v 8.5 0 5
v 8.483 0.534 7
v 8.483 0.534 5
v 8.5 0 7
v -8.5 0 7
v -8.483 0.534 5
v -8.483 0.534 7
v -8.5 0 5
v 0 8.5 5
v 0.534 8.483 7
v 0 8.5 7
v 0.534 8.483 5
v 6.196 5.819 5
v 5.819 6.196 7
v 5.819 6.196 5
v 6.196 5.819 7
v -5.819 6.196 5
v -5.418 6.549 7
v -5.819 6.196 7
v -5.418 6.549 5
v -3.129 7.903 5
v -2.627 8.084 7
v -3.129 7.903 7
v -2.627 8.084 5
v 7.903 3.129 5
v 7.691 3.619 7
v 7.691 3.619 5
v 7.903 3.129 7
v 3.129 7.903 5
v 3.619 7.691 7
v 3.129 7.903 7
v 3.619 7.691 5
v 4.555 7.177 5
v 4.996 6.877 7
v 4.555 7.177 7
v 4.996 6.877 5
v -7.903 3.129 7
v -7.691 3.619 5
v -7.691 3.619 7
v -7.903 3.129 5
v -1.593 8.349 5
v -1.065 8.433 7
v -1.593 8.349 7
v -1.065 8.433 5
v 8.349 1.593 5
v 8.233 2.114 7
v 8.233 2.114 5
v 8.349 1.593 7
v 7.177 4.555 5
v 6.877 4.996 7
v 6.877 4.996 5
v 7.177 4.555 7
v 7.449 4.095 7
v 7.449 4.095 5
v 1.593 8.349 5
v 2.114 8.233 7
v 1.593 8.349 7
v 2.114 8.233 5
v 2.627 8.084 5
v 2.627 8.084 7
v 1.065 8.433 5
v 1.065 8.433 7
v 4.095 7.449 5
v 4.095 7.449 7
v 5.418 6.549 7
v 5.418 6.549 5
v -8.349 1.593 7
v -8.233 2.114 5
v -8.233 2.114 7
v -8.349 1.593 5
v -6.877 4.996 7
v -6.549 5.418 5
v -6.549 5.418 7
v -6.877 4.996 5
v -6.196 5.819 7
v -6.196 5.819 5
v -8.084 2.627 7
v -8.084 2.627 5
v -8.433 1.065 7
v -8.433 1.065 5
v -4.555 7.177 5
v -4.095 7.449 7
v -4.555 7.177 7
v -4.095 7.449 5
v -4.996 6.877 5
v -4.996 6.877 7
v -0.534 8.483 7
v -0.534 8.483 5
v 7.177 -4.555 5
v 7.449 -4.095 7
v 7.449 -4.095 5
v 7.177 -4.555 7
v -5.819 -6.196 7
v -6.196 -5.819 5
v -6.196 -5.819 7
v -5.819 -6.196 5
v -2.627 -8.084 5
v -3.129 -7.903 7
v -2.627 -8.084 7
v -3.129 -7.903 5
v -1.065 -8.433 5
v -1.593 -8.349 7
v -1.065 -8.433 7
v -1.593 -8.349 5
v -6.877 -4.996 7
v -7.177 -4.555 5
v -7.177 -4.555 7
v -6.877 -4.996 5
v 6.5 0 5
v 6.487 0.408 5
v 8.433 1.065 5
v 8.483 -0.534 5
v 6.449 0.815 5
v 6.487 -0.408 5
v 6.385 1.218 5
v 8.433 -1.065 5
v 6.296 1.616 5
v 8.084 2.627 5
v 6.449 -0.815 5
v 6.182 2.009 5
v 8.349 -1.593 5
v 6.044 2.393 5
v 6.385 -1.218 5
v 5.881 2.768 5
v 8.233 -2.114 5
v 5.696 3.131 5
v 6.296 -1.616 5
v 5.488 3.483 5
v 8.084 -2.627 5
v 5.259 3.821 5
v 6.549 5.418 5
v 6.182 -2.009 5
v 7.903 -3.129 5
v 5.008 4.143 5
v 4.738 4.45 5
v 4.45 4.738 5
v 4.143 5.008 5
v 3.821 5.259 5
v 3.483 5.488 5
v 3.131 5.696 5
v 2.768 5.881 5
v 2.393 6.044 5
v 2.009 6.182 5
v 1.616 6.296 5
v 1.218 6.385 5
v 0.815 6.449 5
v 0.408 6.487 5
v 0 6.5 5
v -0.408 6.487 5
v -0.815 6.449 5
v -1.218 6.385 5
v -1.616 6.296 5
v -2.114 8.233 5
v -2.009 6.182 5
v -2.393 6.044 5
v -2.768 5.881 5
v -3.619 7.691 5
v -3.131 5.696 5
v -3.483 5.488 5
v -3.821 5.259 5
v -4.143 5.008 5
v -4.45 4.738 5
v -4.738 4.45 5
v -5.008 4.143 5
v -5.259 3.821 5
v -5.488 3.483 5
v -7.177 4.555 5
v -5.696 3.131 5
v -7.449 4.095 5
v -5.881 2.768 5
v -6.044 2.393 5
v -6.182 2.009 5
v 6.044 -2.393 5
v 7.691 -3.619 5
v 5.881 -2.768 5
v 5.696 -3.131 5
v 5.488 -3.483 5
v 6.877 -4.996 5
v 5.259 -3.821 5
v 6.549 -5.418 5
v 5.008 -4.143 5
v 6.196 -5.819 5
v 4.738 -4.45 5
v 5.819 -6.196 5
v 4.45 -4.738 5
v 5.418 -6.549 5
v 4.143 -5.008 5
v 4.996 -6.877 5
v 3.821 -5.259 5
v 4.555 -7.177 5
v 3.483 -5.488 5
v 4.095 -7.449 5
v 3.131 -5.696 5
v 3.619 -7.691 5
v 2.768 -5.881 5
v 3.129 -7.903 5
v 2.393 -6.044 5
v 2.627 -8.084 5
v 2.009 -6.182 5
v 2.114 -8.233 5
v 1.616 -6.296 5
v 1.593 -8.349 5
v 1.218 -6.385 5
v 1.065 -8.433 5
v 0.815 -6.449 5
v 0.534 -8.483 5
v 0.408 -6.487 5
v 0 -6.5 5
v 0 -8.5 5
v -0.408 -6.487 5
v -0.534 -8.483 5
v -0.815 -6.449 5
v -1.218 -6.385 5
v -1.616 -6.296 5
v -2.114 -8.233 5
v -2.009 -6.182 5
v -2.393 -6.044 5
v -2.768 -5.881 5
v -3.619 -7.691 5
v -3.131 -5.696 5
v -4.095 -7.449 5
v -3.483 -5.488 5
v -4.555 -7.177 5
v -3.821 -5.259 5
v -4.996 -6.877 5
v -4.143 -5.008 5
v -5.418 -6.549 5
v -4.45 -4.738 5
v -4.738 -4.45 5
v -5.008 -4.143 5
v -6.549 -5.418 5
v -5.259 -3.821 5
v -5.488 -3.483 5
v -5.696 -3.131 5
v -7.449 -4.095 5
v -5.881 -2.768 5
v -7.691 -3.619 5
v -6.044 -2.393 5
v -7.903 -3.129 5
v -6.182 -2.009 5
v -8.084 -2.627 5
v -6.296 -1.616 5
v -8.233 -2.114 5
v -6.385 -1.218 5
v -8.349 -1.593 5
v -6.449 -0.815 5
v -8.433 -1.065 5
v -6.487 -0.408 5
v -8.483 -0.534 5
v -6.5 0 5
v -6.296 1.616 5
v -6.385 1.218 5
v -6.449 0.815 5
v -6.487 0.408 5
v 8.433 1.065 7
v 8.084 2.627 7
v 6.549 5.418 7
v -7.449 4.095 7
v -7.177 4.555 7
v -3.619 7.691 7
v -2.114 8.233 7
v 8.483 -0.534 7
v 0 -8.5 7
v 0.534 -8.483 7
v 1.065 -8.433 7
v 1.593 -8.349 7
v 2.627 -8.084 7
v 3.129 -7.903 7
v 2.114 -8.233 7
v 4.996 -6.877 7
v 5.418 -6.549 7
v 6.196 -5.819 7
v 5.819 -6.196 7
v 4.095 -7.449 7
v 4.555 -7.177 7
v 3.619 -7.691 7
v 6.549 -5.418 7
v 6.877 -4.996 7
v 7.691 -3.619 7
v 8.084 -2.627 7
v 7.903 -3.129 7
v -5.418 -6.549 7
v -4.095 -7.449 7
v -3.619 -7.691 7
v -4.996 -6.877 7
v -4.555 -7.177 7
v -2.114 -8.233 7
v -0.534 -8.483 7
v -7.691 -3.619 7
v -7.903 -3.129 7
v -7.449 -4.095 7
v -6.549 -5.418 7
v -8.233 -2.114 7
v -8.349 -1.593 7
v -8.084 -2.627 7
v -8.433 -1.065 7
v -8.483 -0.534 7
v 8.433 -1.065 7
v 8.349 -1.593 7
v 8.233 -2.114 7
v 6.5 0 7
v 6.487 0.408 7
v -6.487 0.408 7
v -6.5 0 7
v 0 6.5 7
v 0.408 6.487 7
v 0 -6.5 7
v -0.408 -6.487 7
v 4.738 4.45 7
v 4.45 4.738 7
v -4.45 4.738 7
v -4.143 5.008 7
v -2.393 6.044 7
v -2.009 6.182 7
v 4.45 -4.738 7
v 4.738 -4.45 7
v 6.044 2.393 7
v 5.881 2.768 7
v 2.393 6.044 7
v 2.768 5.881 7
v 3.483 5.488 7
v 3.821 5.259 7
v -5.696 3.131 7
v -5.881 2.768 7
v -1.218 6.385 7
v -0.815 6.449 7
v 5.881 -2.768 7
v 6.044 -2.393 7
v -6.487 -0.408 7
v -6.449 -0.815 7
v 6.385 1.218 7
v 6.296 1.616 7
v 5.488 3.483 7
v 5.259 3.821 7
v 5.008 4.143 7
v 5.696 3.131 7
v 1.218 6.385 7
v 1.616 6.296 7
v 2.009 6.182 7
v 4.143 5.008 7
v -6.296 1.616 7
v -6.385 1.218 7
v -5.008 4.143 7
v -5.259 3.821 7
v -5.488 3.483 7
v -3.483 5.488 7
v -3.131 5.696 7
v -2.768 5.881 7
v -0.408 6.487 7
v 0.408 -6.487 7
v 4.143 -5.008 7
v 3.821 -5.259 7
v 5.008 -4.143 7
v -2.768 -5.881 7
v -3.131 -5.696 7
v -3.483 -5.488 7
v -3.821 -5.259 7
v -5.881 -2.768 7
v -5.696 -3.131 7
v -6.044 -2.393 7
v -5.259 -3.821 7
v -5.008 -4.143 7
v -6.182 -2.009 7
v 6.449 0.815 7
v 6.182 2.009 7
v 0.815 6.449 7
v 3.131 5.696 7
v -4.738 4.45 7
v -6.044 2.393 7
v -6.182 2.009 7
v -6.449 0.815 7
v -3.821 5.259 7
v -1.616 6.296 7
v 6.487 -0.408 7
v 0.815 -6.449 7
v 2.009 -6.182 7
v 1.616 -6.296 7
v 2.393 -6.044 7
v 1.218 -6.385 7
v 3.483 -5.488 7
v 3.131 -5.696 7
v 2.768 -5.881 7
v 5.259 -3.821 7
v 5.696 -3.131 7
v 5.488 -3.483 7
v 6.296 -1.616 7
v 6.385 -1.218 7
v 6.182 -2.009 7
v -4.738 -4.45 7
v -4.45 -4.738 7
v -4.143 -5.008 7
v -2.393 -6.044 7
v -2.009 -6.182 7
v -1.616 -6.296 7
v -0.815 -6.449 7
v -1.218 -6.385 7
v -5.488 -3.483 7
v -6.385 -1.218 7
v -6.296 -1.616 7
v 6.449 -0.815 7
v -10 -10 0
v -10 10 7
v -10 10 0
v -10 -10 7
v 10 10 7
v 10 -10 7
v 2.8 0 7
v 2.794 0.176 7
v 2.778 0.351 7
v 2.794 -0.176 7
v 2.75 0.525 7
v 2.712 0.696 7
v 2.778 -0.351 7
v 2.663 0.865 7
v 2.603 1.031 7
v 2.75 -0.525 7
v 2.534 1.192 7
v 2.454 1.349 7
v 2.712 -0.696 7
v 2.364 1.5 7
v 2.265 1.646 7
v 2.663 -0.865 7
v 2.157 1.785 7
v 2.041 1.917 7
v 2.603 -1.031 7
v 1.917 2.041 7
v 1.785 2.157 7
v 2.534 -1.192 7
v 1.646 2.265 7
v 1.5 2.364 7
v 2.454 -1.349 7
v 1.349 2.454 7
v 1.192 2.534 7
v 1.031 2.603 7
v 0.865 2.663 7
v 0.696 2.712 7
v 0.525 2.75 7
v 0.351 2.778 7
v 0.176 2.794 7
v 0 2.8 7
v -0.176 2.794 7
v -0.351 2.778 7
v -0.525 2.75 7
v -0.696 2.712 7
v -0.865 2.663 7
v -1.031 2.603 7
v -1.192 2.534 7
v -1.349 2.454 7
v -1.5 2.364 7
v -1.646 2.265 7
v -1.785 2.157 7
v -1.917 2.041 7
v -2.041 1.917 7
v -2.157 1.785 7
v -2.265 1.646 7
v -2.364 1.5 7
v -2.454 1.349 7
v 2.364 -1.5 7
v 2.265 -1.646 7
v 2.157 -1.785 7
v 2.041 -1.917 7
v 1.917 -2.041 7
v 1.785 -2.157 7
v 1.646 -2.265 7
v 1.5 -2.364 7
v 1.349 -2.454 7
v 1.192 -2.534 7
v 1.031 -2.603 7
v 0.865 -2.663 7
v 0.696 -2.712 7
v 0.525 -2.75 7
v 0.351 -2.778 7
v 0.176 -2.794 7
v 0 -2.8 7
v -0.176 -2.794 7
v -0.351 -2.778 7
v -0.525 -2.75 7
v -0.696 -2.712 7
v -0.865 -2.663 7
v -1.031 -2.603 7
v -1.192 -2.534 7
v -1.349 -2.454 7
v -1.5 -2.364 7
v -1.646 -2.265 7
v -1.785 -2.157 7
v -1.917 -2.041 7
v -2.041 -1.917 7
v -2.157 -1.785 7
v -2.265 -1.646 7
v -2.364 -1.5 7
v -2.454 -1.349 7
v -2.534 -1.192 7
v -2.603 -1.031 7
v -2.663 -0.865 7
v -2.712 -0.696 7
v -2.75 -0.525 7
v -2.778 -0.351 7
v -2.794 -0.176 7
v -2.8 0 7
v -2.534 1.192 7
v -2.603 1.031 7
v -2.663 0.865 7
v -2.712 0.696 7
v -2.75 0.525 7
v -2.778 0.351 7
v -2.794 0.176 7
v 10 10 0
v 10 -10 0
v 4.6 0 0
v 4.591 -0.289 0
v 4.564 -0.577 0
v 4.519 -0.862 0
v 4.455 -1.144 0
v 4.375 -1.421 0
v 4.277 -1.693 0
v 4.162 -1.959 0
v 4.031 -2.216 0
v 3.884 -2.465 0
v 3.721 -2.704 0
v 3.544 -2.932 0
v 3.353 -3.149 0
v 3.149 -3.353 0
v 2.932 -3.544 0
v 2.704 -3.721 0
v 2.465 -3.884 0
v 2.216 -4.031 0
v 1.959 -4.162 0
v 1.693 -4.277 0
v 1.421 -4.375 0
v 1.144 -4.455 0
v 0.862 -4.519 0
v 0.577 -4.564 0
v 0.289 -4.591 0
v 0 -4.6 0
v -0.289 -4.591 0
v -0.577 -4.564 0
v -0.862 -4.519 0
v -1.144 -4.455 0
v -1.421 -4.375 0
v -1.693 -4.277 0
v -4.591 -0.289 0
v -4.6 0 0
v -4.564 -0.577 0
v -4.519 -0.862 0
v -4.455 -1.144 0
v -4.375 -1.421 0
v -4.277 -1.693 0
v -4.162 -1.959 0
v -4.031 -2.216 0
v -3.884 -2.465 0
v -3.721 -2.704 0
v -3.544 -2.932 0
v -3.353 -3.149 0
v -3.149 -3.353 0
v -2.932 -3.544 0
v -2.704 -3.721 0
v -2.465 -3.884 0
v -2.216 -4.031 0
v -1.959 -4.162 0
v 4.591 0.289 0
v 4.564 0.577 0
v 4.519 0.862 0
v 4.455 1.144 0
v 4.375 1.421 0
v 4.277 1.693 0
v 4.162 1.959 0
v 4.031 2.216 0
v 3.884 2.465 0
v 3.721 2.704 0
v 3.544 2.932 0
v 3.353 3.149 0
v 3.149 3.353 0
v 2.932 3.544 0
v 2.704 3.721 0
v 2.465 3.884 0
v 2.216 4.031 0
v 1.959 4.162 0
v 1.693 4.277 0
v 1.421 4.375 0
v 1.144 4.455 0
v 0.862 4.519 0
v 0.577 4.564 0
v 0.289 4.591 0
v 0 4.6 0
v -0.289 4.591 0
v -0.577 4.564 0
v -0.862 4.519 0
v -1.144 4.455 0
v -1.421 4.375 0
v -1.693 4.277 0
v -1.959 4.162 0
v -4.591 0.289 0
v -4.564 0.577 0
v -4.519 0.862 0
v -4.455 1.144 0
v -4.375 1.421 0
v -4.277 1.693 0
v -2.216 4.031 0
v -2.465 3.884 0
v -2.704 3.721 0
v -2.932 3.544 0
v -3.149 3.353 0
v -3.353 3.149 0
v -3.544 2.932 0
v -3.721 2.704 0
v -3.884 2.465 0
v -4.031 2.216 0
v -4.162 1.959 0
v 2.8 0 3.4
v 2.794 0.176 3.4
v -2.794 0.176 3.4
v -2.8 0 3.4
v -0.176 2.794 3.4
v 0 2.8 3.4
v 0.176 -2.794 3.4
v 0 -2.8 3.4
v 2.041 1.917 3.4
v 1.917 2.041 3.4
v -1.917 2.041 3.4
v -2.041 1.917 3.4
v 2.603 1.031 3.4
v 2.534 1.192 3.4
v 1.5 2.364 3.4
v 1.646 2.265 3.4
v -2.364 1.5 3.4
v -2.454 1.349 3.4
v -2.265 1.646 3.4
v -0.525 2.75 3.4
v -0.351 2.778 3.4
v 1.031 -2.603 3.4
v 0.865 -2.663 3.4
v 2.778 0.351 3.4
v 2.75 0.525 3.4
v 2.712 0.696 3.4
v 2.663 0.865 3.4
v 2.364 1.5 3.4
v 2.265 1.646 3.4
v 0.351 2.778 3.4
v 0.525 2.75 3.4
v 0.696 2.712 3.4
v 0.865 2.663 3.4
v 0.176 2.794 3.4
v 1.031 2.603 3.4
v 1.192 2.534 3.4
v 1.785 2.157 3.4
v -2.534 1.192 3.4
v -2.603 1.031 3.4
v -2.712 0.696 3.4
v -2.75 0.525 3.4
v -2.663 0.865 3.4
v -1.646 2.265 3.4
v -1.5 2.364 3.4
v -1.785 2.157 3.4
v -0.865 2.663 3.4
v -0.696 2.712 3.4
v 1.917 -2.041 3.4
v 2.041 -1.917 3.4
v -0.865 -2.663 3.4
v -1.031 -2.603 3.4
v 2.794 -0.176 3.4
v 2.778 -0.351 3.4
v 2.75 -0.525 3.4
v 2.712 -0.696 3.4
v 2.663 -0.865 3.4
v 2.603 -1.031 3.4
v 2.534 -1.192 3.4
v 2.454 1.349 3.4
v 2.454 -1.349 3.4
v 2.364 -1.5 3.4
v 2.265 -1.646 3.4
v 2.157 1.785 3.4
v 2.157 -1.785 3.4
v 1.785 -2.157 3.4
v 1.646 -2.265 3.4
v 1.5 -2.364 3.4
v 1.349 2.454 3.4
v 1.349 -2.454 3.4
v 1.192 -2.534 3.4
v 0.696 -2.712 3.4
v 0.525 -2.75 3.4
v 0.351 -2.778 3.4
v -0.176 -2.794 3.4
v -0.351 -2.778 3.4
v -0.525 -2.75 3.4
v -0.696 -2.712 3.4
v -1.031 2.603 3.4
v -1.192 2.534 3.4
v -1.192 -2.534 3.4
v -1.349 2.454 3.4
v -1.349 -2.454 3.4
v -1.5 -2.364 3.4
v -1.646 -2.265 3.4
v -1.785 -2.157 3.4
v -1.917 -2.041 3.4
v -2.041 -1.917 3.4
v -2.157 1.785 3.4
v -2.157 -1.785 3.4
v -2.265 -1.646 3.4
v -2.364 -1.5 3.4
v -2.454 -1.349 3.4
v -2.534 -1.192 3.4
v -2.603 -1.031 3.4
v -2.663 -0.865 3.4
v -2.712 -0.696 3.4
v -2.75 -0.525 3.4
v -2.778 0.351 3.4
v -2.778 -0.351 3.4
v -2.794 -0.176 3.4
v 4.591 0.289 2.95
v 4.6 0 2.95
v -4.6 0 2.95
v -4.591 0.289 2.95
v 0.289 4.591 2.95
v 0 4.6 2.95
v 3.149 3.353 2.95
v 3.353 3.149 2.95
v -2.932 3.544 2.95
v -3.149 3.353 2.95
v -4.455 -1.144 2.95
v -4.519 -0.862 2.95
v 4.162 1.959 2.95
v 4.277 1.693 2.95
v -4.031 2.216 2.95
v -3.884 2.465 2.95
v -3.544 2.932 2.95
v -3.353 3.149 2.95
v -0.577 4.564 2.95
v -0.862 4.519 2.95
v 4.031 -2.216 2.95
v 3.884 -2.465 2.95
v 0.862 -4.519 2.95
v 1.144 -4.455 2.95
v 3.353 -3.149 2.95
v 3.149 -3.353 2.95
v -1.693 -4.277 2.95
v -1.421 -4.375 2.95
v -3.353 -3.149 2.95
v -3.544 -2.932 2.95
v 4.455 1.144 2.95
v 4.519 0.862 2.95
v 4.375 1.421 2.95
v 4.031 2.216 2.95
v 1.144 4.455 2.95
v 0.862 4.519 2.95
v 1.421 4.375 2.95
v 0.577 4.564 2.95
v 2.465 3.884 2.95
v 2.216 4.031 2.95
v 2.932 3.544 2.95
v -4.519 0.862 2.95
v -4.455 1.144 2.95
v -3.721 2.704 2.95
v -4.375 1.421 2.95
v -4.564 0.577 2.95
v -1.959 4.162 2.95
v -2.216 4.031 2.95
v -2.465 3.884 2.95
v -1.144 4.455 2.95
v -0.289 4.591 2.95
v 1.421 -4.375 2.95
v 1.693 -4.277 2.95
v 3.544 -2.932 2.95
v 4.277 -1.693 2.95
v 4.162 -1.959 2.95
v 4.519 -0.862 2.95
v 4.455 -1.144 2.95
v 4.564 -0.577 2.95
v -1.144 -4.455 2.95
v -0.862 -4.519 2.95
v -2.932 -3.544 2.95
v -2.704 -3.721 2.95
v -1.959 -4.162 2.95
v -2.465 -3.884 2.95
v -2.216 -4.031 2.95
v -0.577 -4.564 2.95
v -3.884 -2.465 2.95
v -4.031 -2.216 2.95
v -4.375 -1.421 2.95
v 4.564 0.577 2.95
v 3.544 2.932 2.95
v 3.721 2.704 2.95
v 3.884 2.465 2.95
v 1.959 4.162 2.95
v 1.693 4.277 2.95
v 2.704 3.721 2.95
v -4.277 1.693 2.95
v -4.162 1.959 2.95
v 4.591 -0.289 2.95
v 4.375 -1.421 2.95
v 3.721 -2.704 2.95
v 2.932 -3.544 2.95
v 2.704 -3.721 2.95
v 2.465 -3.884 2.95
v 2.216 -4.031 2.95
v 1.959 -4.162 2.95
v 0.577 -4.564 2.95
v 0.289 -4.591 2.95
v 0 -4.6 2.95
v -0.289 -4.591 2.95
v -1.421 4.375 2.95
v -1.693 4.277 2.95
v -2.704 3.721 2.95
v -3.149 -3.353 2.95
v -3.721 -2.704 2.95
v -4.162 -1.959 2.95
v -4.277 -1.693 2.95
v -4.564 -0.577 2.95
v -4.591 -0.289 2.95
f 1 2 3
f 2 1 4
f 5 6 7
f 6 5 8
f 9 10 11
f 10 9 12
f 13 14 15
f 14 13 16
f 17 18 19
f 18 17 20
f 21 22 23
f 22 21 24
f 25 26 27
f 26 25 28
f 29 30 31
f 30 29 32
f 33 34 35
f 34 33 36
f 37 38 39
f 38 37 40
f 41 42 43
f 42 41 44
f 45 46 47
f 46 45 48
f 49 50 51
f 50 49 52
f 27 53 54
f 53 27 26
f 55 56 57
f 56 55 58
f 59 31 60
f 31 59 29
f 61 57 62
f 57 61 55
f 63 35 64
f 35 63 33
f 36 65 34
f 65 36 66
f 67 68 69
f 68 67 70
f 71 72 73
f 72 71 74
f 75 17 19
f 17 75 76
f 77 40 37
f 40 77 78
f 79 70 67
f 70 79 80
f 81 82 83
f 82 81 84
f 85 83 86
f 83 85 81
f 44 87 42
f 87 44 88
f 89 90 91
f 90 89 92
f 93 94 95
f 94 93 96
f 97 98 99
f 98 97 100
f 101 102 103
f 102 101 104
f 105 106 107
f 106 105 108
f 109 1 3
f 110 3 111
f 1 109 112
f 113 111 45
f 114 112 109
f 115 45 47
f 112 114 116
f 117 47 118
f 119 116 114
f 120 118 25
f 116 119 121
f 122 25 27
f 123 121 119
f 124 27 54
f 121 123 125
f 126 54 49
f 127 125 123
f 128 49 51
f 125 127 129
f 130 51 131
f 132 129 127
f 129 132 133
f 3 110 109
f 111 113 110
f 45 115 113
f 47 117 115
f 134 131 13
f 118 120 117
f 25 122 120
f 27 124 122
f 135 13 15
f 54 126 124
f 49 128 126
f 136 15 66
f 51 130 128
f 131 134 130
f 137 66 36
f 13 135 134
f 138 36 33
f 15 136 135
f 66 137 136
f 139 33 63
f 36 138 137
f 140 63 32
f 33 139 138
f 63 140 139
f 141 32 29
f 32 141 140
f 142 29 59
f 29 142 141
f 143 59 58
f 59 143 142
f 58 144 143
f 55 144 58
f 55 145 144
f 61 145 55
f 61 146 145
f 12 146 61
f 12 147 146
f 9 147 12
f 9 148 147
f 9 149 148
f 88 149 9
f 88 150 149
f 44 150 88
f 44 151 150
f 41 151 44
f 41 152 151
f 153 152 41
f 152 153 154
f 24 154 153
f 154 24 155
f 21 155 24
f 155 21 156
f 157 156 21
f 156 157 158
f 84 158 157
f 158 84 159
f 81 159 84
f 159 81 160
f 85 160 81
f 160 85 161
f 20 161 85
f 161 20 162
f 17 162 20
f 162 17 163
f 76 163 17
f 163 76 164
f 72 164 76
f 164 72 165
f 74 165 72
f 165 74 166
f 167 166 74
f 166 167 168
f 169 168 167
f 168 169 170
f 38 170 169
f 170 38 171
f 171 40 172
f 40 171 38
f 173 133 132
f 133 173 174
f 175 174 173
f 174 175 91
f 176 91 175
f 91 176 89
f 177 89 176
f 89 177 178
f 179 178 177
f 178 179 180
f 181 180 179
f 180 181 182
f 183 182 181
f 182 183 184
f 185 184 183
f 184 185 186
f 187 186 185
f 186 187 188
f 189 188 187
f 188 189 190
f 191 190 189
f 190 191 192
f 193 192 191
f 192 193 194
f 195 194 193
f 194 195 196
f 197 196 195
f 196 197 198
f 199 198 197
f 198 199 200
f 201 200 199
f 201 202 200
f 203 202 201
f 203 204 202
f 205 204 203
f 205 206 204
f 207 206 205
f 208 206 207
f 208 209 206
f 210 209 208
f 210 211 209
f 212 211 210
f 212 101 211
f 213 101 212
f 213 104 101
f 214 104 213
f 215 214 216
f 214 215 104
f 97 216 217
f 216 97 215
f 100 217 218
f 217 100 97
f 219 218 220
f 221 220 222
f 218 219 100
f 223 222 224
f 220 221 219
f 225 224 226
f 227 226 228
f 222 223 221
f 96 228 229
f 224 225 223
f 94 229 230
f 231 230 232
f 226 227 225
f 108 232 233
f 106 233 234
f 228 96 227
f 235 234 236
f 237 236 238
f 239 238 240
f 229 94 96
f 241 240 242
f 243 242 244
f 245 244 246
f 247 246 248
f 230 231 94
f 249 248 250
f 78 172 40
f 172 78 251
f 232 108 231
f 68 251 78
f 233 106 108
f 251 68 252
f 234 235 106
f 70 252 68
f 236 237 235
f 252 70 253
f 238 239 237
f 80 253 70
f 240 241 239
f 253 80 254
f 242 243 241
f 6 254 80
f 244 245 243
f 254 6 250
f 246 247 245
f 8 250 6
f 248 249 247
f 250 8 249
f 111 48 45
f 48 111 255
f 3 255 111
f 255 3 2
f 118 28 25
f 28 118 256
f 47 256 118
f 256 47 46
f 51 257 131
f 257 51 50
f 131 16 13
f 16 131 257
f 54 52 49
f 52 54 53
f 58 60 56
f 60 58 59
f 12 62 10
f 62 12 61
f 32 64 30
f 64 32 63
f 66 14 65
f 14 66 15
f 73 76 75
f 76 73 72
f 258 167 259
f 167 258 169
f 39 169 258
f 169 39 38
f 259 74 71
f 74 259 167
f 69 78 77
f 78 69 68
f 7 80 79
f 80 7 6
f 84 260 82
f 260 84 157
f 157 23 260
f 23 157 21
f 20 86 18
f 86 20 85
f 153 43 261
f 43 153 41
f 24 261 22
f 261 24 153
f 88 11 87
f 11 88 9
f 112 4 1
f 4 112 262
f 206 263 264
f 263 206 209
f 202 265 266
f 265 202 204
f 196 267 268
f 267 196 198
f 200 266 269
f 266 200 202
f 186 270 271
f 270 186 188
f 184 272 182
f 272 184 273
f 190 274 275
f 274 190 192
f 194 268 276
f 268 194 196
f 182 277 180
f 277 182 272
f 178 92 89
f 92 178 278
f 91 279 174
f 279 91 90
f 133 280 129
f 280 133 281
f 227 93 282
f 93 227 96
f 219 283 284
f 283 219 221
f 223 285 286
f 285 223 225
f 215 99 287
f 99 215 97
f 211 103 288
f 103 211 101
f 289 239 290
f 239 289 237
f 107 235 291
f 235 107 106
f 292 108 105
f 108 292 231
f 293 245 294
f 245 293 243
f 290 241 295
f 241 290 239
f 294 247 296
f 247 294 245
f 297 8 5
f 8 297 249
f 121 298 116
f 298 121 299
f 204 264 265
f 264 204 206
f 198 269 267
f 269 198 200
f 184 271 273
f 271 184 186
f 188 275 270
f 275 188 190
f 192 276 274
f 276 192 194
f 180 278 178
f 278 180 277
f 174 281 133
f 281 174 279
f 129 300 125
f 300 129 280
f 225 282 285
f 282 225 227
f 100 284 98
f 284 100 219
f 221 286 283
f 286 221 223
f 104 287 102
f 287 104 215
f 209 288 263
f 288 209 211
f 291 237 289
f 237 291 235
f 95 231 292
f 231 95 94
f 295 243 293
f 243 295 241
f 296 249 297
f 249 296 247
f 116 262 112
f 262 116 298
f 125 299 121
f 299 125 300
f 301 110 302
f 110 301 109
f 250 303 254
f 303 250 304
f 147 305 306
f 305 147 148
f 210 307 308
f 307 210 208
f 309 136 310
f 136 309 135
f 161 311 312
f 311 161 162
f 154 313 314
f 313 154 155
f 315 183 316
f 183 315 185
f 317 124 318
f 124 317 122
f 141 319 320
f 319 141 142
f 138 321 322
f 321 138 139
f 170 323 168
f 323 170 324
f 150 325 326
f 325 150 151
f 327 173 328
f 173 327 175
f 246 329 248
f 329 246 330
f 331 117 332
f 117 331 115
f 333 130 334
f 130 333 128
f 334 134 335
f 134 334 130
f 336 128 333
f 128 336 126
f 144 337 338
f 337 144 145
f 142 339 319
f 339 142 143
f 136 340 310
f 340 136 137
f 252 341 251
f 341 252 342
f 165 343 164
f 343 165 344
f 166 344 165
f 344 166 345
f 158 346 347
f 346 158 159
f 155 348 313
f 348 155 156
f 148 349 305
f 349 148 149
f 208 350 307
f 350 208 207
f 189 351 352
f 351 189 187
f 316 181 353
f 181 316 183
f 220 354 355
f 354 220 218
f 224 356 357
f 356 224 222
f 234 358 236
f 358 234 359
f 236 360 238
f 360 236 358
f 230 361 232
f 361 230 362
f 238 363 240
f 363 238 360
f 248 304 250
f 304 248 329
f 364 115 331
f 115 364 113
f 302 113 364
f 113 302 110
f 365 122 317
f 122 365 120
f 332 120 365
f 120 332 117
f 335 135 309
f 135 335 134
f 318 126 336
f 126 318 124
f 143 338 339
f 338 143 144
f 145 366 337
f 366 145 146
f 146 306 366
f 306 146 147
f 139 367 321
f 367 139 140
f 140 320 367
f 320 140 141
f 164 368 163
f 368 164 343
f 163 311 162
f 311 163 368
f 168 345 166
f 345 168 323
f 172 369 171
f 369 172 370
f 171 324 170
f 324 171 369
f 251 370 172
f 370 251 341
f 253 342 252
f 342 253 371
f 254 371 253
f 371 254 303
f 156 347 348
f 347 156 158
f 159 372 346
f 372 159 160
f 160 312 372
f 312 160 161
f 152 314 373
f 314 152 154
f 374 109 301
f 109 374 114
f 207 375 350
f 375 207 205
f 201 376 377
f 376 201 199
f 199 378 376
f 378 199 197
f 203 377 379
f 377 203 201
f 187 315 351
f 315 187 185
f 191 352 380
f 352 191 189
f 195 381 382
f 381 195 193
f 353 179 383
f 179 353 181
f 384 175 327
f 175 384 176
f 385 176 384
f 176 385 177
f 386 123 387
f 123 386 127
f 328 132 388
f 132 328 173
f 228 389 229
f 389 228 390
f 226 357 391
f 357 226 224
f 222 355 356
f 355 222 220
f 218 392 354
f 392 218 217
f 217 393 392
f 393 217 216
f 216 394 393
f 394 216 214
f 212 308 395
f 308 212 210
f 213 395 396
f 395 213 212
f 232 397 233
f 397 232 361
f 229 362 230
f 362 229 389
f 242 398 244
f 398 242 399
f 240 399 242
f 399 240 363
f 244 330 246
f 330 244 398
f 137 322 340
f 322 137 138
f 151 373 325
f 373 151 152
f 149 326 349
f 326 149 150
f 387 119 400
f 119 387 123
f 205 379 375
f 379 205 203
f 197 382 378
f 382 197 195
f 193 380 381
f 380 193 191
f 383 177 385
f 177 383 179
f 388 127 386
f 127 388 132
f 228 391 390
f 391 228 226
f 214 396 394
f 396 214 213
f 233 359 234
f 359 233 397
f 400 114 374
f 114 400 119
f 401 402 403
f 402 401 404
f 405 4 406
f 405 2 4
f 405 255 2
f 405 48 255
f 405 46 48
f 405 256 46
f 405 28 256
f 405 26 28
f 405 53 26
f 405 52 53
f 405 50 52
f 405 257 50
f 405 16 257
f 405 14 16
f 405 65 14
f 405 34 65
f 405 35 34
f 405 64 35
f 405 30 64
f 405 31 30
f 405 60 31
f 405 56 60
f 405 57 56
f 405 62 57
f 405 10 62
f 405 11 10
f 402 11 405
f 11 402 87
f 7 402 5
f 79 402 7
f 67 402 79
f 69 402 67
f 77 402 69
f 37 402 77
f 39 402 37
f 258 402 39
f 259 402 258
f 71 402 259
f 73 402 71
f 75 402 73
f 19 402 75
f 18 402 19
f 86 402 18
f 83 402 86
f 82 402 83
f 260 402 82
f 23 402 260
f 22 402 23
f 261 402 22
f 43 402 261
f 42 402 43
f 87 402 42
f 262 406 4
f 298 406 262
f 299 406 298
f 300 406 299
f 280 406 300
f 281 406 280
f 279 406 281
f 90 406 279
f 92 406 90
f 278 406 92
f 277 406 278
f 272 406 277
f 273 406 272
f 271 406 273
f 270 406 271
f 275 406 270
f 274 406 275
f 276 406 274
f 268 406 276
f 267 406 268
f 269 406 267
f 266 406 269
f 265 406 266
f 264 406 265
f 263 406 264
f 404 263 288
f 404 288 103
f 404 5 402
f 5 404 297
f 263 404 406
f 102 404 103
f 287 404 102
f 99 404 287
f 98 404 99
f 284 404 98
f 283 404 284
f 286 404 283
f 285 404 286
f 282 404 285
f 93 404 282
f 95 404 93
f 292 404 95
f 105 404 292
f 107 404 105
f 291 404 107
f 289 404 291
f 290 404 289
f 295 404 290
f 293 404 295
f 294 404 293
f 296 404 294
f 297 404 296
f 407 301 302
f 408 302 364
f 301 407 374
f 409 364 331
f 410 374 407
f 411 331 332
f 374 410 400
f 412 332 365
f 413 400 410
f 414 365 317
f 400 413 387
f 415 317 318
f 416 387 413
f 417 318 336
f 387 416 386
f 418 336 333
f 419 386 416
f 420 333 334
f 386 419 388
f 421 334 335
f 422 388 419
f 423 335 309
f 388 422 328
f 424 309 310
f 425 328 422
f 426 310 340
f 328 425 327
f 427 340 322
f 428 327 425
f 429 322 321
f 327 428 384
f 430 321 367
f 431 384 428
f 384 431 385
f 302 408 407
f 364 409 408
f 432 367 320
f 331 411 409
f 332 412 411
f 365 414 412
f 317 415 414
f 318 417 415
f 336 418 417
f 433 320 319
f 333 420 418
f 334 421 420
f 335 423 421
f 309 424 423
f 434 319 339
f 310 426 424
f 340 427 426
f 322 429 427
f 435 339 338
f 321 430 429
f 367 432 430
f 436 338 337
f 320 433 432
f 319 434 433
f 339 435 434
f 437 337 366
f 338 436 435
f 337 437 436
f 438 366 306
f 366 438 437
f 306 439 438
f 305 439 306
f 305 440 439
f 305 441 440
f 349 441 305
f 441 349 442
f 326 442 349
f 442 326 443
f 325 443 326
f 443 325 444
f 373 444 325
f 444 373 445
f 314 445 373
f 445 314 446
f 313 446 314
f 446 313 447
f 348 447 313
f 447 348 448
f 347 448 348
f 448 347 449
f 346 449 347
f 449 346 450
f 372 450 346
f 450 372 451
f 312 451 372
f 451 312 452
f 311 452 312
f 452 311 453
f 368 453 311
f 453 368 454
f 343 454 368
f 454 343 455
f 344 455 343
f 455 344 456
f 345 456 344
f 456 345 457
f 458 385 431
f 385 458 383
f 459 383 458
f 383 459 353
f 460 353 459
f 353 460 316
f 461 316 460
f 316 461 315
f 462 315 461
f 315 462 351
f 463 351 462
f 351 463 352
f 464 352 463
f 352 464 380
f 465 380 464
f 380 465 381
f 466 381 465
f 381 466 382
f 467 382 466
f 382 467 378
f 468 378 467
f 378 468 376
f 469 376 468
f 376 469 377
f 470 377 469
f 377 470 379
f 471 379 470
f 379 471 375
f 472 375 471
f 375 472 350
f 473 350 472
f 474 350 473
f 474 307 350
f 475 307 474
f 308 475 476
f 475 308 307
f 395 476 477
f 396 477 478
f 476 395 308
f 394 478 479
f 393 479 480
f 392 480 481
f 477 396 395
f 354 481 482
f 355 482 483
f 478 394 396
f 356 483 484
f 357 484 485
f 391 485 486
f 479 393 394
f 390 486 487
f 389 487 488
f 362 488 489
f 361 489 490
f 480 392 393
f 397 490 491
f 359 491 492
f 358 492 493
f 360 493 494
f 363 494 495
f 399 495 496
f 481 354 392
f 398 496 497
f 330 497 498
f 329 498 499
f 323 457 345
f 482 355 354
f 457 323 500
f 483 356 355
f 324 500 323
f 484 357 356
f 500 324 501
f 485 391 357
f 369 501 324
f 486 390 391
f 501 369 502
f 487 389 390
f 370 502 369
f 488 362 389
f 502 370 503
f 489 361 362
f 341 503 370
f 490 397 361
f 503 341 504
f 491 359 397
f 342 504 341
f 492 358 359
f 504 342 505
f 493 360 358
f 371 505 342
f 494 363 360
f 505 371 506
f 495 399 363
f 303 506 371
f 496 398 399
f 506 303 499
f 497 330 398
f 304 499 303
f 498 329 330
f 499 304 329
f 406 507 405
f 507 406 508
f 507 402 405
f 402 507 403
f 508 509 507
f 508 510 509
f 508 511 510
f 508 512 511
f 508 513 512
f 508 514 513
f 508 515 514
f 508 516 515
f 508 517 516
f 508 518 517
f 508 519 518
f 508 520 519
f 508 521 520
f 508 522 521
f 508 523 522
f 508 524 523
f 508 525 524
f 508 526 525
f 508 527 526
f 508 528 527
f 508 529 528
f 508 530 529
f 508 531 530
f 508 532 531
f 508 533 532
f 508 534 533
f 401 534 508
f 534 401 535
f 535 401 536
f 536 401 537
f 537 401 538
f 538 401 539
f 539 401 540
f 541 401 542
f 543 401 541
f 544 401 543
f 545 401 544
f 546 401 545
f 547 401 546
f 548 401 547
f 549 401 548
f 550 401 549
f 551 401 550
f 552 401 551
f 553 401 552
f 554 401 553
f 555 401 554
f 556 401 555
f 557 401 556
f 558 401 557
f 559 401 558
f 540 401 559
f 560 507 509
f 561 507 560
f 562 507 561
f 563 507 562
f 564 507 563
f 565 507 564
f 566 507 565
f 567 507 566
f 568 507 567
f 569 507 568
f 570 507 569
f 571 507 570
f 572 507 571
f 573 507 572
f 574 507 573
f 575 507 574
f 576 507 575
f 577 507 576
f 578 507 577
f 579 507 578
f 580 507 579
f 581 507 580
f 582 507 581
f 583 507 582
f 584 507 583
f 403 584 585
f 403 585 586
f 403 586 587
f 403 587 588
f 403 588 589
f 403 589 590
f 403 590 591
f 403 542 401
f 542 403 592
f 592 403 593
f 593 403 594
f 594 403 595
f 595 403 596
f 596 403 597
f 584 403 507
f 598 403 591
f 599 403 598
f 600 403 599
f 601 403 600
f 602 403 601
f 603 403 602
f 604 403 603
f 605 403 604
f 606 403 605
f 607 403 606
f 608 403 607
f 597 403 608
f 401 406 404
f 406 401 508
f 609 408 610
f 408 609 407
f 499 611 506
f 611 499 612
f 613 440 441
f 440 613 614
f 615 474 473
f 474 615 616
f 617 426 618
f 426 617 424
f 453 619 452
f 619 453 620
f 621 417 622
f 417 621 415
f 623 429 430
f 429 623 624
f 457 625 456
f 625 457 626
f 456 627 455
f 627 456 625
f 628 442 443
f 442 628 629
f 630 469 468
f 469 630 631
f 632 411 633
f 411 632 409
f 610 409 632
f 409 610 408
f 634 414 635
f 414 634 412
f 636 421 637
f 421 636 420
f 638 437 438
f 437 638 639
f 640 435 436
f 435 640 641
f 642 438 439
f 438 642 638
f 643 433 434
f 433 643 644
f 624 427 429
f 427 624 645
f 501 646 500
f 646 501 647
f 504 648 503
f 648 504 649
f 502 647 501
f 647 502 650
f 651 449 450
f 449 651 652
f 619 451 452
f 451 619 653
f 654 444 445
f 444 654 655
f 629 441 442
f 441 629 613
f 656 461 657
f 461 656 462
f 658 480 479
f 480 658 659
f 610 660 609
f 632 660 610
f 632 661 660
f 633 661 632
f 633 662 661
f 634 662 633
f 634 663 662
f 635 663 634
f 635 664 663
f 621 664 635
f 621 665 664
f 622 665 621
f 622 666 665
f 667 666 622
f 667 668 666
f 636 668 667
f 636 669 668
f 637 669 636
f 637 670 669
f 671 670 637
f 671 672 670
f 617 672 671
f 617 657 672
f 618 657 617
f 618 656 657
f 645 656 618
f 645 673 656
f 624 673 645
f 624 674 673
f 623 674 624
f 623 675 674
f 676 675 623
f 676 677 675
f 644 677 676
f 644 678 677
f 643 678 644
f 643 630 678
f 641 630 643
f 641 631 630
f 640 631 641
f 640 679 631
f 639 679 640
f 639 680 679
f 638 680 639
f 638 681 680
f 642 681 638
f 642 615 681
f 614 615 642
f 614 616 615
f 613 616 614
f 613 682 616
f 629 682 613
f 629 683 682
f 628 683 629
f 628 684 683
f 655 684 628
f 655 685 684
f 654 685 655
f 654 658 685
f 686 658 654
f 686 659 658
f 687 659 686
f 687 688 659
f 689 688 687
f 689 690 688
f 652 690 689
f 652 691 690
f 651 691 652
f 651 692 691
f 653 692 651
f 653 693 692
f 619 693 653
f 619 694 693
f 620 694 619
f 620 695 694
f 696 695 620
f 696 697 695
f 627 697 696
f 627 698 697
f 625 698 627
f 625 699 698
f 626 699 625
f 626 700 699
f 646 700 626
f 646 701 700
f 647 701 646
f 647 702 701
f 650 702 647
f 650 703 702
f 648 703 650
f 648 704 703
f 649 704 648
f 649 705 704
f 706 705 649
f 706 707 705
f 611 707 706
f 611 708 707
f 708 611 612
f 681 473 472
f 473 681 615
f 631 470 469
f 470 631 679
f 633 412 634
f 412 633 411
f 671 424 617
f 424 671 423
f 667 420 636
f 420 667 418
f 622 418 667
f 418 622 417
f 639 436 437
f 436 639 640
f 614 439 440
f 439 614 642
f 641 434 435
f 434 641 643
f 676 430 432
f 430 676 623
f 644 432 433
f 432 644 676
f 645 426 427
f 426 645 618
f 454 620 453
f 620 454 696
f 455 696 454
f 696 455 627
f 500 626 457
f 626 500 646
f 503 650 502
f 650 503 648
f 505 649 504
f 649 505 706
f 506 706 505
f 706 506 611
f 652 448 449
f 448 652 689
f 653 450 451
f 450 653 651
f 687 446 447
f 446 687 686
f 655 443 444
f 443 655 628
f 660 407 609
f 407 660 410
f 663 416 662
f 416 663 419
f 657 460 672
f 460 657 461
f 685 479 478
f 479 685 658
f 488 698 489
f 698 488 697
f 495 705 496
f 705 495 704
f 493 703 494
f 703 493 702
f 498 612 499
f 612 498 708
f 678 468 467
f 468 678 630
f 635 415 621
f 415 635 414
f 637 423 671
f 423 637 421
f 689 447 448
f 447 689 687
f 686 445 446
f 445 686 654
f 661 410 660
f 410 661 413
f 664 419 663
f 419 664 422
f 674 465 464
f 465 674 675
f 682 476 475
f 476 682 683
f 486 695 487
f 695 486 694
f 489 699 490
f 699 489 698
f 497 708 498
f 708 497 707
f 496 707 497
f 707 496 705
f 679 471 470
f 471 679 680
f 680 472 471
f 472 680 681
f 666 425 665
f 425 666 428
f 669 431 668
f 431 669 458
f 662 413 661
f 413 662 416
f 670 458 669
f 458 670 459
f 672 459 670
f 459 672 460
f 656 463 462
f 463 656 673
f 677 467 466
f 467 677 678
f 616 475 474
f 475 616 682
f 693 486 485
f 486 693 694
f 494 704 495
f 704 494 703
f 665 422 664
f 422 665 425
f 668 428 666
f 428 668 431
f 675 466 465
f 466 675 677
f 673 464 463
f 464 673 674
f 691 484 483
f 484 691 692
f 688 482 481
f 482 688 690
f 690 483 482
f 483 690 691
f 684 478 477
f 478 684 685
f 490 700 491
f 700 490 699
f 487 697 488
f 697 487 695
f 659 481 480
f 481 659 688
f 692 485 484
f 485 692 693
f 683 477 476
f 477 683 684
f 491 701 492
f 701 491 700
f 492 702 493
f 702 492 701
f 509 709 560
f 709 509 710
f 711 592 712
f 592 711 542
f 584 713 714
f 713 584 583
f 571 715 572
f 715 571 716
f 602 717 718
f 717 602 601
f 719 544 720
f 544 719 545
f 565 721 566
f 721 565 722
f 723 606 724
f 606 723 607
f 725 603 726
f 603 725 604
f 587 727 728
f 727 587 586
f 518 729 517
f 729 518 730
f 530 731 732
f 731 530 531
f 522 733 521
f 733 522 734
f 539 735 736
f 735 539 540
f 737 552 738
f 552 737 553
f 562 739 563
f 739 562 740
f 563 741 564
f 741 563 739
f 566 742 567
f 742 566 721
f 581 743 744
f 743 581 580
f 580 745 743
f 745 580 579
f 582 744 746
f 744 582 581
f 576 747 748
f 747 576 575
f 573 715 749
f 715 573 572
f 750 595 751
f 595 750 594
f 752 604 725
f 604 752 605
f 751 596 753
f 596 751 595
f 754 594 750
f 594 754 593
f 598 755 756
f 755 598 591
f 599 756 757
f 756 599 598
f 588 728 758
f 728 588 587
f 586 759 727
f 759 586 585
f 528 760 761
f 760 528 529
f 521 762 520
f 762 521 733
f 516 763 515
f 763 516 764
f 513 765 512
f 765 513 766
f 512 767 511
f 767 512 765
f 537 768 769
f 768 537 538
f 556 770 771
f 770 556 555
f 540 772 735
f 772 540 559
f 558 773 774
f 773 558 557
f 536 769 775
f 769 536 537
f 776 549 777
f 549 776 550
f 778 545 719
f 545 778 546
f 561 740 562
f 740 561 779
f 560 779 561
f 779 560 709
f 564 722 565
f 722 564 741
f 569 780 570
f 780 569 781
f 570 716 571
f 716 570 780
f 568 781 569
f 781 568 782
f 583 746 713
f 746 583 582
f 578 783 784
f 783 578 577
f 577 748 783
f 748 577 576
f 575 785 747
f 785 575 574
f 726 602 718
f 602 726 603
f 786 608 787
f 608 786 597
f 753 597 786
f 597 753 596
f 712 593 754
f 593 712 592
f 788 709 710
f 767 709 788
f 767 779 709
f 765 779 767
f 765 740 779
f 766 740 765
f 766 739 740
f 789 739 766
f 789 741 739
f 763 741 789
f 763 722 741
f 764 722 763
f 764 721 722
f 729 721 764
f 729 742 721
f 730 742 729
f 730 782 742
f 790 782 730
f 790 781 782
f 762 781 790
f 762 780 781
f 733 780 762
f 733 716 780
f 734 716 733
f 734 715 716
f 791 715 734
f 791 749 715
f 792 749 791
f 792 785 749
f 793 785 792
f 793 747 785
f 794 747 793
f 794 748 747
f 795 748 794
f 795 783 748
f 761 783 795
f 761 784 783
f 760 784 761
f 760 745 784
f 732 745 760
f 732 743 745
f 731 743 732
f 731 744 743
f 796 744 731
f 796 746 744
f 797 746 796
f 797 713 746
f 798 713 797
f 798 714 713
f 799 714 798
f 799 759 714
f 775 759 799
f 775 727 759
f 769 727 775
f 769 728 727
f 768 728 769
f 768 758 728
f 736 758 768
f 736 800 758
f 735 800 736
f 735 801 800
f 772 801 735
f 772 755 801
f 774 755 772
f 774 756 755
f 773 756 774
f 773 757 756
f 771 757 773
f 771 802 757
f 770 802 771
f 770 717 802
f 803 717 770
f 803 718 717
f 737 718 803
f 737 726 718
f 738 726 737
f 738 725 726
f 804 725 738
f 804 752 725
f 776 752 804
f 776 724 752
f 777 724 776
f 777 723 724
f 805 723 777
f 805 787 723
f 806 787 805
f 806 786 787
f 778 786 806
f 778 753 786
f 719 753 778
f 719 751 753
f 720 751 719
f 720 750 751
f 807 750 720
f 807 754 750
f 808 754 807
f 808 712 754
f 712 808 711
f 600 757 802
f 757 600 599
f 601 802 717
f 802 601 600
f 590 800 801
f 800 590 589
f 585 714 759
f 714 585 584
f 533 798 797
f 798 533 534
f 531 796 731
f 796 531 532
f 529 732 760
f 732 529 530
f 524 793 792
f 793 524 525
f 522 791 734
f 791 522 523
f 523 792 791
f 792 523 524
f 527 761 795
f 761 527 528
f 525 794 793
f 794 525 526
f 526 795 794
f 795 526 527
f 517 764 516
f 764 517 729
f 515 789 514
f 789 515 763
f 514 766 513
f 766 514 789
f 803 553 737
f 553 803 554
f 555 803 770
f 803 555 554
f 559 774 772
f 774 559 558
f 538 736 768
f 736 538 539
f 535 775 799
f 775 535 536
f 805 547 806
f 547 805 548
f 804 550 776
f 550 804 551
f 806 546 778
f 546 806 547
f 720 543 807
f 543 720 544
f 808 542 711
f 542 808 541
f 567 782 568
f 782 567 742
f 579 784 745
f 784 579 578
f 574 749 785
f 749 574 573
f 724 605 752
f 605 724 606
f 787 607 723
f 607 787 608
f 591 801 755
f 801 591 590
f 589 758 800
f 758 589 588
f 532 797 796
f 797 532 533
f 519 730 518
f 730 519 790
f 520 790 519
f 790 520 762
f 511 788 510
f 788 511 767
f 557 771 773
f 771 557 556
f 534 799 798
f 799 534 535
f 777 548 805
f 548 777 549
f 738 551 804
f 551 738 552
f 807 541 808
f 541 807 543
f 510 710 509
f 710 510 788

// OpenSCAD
difference() {
	translate(v = [-10, -10, 0]) {
		cube(size = [20, 20, 7]);
	}
	translate(v = [0, 0, 5]) {
		difference() {
			cylinder($fn = 100, d = 17.0000000000, h = 11);
			cylinder($fn = 100, d = 13.0000000000, h = 11);
		}
	}
	translate(v = [0, 0, 3.4000000000]) {
		cylinder($fn = 100, d = 5.6000000000, h = 15);
	}
	translate(v = [0, 0, -0.0500000000]) {
		cylinder($fn = 100, d = 9.2000000000, h = 3);
	}
}
